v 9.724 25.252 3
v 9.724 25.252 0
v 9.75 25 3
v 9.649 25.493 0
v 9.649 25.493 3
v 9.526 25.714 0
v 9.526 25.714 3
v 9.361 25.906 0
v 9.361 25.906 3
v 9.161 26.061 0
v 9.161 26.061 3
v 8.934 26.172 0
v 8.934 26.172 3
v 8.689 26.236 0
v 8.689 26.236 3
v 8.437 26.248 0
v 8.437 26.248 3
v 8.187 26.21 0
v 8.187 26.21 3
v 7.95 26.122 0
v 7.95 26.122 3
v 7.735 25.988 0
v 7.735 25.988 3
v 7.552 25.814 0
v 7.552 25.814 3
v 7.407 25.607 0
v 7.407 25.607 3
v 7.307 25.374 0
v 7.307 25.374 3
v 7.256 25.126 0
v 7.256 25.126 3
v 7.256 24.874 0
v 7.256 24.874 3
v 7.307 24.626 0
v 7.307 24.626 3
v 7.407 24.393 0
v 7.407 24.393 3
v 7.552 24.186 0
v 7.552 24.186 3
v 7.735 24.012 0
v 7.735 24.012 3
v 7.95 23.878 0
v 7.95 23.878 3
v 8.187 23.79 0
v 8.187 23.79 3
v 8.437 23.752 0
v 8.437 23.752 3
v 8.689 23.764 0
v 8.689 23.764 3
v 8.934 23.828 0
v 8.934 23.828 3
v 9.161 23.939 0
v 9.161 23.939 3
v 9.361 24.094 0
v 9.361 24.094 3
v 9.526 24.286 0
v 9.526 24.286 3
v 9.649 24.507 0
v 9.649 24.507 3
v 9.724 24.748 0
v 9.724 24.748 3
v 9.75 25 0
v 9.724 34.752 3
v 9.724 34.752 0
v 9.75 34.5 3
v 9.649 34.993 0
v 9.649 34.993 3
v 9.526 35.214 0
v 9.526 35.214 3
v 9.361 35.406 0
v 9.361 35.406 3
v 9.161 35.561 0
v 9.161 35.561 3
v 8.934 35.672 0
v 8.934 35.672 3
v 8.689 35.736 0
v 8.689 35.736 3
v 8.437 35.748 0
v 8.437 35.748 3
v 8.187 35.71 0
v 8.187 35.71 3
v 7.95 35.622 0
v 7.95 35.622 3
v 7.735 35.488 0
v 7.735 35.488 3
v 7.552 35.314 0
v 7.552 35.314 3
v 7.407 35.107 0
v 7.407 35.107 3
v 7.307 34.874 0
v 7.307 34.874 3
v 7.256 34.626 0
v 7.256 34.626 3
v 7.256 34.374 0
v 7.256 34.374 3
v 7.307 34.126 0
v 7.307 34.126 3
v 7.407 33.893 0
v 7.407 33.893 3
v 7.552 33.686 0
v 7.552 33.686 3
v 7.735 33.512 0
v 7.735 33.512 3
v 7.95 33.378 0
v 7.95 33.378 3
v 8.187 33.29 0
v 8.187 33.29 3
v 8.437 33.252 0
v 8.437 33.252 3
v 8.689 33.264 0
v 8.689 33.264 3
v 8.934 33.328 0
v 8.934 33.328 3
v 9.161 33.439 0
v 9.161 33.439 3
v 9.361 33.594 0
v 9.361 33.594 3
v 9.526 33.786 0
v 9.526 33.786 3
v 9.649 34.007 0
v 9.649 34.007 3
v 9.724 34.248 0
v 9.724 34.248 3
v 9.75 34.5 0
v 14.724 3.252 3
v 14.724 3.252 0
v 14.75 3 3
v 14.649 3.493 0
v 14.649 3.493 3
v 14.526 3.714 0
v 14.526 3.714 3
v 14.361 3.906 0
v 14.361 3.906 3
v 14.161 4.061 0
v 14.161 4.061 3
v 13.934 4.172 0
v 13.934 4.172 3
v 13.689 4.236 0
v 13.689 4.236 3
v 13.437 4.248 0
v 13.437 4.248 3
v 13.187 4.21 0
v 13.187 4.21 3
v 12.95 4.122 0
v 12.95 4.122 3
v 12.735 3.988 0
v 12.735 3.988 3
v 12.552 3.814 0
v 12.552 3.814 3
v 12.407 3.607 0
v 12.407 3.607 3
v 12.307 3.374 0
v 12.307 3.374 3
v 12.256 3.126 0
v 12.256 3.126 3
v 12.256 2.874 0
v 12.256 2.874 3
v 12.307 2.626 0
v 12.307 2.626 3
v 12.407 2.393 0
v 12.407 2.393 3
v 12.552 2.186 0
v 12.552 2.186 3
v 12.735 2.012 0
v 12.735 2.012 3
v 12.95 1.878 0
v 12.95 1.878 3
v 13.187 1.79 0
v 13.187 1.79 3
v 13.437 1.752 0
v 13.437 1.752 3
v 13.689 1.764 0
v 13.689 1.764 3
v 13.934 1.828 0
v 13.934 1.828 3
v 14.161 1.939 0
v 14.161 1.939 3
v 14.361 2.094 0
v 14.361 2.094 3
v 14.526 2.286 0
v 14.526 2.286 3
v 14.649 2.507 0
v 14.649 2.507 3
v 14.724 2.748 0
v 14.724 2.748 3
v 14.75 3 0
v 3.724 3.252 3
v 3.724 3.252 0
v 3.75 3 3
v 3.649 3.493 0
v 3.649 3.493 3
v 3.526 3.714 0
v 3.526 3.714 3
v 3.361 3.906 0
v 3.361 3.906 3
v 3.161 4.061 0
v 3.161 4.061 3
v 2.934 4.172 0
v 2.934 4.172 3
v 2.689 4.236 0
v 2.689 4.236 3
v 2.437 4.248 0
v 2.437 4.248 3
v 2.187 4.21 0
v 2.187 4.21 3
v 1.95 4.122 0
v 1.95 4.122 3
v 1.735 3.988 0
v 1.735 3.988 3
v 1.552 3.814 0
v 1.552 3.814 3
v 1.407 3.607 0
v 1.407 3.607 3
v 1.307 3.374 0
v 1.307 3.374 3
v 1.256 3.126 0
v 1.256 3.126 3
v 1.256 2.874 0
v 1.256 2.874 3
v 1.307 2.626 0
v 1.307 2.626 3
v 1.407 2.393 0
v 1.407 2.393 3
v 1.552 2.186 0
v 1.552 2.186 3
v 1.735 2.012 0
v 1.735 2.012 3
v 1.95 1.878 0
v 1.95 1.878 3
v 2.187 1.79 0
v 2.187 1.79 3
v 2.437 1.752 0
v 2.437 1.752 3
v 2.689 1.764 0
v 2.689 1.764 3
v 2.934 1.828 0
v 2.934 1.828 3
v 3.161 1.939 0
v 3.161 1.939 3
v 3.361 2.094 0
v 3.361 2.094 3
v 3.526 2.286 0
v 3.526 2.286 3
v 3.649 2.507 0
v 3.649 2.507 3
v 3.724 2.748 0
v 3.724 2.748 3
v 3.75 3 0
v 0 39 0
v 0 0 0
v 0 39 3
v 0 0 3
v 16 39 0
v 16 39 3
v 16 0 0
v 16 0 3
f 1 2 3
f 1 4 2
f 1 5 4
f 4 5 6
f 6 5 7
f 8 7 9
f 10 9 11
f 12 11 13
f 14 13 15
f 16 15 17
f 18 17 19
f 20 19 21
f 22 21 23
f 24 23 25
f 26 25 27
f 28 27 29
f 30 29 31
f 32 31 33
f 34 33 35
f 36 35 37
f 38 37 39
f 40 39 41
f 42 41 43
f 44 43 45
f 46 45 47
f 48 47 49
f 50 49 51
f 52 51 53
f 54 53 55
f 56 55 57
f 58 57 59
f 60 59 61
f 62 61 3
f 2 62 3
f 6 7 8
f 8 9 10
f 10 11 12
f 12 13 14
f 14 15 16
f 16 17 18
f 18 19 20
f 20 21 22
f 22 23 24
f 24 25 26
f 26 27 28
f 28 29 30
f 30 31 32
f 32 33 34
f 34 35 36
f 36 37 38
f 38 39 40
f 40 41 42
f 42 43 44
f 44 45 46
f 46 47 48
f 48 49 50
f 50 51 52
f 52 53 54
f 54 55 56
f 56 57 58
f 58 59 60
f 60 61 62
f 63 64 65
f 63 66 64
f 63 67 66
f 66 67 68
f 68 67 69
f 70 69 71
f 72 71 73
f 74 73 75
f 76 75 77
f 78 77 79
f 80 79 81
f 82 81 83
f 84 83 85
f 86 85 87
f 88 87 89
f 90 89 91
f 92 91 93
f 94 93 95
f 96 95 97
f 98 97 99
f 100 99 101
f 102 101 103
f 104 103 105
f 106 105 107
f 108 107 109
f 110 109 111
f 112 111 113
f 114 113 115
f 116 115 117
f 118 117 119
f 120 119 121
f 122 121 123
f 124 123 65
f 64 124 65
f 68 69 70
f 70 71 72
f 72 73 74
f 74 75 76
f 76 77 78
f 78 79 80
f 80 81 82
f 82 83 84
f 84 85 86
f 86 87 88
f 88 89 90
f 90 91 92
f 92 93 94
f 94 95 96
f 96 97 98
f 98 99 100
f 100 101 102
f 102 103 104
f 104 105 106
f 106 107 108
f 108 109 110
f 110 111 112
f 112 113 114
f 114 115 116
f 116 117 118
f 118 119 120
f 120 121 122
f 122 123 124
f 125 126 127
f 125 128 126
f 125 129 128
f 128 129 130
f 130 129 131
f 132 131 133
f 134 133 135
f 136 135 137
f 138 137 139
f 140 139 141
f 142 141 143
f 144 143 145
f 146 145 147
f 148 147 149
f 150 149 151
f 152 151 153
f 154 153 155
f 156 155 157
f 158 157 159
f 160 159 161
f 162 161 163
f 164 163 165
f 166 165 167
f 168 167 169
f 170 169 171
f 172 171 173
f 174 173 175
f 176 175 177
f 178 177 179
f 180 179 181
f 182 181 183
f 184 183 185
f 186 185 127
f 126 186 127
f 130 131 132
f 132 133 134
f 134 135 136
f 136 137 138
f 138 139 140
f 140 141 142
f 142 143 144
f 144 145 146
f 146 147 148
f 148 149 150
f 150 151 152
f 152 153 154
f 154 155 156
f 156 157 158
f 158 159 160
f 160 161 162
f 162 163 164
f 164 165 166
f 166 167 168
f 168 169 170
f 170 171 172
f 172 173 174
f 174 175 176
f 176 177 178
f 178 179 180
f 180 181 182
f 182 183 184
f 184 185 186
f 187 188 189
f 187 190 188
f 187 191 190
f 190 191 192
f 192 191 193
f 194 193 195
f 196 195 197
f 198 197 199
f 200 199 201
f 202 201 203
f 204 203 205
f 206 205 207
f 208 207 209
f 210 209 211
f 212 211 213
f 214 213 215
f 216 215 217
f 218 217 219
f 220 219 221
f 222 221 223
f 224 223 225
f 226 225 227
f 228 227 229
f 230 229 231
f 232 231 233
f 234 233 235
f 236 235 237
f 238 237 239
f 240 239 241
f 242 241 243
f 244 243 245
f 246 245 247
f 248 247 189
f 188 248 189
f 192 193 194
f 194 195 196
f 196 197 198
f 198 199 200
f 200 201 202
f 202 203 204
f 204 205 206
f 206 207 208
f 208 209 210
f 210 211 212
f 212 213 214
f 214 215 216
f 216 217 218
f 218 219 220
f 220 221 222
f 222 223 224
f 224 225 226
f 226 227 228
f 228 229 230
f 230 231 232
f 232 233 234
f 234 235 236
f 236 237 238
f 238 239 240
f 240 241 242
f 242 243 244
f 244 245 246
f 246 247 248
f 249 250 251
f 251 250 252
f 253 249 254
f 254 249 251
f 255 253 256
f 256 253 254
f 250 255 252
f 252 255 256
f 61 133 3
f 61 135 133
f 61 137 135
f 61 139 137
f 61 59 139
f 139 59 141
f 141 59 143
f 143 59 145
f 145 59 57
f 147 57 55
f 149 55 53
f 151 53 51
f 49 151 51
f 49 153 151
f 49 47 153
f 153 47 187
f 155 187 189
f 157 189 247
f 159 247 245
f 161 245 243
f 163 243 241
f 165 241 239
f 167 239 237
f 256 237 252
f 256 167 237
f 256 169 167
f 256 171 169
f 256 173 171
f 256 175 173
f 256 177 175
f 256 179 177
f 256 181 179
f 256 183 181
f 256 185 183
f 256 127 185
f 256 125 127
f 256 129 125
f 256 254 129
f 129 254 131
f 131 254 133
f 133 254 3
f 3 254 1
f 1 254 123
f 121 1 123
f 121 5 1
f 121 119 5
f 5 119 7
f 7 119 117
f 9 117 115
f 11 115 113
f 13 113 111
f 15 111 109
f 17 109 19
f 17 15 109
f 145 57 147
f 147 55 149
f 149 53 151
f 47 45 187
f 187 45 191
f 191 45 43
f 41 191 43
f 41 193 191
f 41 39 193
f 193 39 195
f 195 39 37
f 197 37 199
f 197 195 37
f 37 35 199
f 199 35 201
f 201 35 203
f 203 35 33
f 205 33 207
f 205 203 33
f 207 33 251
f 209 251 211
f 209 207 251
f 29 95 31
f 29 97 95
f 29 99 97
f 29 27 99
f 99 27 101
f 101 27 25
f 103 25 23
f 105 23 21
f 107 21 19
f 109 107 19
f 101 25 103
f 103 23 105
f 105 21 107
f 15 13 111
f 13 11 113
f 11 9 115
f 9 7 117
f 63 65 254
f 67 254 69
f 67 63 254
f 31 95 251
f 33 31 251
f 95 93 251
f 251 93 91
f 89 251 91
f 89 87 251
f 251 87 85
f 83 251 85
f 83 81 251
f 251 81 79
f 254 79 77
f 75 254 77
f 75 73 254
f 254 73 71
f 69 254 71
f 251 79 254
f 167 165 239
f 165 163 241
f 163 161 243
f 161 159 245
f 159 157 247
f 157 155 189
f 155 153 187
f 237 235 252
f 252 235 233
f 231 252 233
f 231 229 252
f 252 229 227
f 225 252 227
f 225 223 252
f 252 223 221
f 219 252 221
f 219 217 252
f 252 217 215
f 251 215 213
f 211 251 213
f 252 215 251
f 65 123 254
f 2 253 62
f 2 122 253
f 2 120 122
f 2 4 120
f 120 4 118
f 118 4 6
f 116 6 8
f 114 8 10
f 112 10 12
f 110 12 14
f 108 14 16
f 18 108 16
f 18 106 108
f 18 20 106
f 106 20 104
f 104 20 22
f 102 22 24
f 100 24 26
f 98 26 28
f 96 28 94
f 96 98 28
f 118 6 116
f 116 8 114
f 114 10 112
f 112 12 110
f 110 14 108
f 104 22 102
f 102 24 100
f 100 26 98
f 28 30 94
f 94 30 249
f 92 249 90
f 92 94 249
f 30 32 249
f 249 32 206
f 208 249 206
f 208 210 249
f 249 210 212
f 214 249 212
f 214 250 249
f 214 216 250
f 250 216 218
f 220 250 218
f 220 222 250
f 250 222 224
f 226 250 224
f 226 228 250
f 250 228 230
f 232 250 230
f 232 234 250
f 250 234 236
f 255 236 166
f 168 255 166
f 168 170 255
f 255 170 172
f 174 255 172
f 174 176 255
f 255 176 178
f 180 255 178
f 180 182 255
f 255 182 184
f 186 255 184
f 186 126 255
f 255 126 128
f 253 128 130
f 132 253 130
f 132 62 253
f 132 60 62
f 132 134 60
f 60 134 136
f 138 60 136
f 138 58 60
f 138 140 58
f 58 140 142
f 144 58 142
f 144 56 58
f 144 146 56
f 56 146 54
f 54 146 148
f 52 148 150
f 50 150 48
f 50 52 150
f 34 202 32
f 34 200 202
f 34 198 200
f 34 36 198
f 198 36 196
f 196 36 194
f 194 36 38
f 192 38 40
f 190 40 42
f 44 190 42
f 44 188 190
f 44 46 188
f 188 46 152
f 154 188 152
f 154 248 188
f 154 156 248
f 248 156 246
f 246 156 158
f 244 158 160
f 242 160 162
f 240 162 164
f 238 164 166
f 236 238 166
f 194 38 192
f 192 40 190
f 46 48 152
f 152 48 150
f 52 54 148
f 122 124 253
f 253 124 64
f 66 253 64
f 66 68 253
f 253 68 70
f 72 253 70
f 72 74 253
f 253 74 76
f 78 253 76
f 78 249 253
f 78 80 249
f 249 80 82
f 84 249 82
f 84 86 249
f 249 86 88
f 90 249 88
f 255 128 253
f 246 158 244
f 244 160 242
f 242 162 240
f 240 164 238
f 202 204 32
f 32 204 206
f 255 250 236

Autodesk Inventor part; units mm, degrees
ref_plane "YZ Plane" through (0, 0, 0) normal (1, 0, 0) x (0, 1, 0)
ref_plane "XZ Plane" through (0, 0, 0) normal (0, 1, 0) x (-1, 0, 0)
ref_plane "XY Plane" through (0, 0, 0) normal (0, 0, 1) x (1, 0, 0)
sketch "Sketch1" plane through (0, 0, 0) normal (0, 0, 1) x (1, 0, 0)
  line L0 (0, 0) -> (16, 0)
  line L1 (16, 0) -> (16, 39)
  line L2 (16, 39) -> (0, 39)
  line L3 (0, 39) -> (0, 0)
  line L4 (8, 32.7385) -> (8, -1.6019) construction
  line L5 (8, 0) -> (8, 3) construction
  line L6 (8, 3) -> (-6.2893, 3) construction
  line L7 (-6.2893, 3) -> (30.6517, 3) construction
  line L8 (8, 3) -> (13.5, 3) construction
  line L9 (13.5, 3) -> (13.5, 7.8913) construction
  line L10 (13.5, 7.8913) -> (2.5, 7.8913) construction
  line L11 (2.5, 7.8913) -> (2.5, 1.5) construction
  circle A0 centre (2.5, 3) radius 1.25
  circle A1 centre (13.5, 3) radius 1.25
  line L12 (8, 0) -> (8, 25) construction
  line L13 (8, 25) -> (38.3893, 25) construction
  line L14 (38.3893, 25) -> (38.3893, 34.5) construction
  line L15 (38.3893, 34.5) -> (16, 34.5) construction
  line L16 (16, 34.5) -> (8.5, 34.5) construction
  line L17 (8.5, 34.5) -> (8.5, 22.056) construction
  circle A2 centre (8.5, 34.5) radius 1.25
  circle A3 centre (8.5, 25) radius 1.25
  dimension "d0" = 16
  dimension "d1" = 39
  dimension "d2" = 3
  dimension "d3" = 5.5
  dimension "d4" = 11
  dimension "d5" = 2.5
  dimension "d6" = 2.5
  dimension "d7" = 25
  dimension "d8" = 9.5
  dimension "d9" = 7.5
  dimension "d10" = 2.5
  dimension "d11" = 2.5
extrude "Extrusion1" add sketch "Sketch1" along normal blind 3
properties part number "bart x endstop bracket plain switch v1"
